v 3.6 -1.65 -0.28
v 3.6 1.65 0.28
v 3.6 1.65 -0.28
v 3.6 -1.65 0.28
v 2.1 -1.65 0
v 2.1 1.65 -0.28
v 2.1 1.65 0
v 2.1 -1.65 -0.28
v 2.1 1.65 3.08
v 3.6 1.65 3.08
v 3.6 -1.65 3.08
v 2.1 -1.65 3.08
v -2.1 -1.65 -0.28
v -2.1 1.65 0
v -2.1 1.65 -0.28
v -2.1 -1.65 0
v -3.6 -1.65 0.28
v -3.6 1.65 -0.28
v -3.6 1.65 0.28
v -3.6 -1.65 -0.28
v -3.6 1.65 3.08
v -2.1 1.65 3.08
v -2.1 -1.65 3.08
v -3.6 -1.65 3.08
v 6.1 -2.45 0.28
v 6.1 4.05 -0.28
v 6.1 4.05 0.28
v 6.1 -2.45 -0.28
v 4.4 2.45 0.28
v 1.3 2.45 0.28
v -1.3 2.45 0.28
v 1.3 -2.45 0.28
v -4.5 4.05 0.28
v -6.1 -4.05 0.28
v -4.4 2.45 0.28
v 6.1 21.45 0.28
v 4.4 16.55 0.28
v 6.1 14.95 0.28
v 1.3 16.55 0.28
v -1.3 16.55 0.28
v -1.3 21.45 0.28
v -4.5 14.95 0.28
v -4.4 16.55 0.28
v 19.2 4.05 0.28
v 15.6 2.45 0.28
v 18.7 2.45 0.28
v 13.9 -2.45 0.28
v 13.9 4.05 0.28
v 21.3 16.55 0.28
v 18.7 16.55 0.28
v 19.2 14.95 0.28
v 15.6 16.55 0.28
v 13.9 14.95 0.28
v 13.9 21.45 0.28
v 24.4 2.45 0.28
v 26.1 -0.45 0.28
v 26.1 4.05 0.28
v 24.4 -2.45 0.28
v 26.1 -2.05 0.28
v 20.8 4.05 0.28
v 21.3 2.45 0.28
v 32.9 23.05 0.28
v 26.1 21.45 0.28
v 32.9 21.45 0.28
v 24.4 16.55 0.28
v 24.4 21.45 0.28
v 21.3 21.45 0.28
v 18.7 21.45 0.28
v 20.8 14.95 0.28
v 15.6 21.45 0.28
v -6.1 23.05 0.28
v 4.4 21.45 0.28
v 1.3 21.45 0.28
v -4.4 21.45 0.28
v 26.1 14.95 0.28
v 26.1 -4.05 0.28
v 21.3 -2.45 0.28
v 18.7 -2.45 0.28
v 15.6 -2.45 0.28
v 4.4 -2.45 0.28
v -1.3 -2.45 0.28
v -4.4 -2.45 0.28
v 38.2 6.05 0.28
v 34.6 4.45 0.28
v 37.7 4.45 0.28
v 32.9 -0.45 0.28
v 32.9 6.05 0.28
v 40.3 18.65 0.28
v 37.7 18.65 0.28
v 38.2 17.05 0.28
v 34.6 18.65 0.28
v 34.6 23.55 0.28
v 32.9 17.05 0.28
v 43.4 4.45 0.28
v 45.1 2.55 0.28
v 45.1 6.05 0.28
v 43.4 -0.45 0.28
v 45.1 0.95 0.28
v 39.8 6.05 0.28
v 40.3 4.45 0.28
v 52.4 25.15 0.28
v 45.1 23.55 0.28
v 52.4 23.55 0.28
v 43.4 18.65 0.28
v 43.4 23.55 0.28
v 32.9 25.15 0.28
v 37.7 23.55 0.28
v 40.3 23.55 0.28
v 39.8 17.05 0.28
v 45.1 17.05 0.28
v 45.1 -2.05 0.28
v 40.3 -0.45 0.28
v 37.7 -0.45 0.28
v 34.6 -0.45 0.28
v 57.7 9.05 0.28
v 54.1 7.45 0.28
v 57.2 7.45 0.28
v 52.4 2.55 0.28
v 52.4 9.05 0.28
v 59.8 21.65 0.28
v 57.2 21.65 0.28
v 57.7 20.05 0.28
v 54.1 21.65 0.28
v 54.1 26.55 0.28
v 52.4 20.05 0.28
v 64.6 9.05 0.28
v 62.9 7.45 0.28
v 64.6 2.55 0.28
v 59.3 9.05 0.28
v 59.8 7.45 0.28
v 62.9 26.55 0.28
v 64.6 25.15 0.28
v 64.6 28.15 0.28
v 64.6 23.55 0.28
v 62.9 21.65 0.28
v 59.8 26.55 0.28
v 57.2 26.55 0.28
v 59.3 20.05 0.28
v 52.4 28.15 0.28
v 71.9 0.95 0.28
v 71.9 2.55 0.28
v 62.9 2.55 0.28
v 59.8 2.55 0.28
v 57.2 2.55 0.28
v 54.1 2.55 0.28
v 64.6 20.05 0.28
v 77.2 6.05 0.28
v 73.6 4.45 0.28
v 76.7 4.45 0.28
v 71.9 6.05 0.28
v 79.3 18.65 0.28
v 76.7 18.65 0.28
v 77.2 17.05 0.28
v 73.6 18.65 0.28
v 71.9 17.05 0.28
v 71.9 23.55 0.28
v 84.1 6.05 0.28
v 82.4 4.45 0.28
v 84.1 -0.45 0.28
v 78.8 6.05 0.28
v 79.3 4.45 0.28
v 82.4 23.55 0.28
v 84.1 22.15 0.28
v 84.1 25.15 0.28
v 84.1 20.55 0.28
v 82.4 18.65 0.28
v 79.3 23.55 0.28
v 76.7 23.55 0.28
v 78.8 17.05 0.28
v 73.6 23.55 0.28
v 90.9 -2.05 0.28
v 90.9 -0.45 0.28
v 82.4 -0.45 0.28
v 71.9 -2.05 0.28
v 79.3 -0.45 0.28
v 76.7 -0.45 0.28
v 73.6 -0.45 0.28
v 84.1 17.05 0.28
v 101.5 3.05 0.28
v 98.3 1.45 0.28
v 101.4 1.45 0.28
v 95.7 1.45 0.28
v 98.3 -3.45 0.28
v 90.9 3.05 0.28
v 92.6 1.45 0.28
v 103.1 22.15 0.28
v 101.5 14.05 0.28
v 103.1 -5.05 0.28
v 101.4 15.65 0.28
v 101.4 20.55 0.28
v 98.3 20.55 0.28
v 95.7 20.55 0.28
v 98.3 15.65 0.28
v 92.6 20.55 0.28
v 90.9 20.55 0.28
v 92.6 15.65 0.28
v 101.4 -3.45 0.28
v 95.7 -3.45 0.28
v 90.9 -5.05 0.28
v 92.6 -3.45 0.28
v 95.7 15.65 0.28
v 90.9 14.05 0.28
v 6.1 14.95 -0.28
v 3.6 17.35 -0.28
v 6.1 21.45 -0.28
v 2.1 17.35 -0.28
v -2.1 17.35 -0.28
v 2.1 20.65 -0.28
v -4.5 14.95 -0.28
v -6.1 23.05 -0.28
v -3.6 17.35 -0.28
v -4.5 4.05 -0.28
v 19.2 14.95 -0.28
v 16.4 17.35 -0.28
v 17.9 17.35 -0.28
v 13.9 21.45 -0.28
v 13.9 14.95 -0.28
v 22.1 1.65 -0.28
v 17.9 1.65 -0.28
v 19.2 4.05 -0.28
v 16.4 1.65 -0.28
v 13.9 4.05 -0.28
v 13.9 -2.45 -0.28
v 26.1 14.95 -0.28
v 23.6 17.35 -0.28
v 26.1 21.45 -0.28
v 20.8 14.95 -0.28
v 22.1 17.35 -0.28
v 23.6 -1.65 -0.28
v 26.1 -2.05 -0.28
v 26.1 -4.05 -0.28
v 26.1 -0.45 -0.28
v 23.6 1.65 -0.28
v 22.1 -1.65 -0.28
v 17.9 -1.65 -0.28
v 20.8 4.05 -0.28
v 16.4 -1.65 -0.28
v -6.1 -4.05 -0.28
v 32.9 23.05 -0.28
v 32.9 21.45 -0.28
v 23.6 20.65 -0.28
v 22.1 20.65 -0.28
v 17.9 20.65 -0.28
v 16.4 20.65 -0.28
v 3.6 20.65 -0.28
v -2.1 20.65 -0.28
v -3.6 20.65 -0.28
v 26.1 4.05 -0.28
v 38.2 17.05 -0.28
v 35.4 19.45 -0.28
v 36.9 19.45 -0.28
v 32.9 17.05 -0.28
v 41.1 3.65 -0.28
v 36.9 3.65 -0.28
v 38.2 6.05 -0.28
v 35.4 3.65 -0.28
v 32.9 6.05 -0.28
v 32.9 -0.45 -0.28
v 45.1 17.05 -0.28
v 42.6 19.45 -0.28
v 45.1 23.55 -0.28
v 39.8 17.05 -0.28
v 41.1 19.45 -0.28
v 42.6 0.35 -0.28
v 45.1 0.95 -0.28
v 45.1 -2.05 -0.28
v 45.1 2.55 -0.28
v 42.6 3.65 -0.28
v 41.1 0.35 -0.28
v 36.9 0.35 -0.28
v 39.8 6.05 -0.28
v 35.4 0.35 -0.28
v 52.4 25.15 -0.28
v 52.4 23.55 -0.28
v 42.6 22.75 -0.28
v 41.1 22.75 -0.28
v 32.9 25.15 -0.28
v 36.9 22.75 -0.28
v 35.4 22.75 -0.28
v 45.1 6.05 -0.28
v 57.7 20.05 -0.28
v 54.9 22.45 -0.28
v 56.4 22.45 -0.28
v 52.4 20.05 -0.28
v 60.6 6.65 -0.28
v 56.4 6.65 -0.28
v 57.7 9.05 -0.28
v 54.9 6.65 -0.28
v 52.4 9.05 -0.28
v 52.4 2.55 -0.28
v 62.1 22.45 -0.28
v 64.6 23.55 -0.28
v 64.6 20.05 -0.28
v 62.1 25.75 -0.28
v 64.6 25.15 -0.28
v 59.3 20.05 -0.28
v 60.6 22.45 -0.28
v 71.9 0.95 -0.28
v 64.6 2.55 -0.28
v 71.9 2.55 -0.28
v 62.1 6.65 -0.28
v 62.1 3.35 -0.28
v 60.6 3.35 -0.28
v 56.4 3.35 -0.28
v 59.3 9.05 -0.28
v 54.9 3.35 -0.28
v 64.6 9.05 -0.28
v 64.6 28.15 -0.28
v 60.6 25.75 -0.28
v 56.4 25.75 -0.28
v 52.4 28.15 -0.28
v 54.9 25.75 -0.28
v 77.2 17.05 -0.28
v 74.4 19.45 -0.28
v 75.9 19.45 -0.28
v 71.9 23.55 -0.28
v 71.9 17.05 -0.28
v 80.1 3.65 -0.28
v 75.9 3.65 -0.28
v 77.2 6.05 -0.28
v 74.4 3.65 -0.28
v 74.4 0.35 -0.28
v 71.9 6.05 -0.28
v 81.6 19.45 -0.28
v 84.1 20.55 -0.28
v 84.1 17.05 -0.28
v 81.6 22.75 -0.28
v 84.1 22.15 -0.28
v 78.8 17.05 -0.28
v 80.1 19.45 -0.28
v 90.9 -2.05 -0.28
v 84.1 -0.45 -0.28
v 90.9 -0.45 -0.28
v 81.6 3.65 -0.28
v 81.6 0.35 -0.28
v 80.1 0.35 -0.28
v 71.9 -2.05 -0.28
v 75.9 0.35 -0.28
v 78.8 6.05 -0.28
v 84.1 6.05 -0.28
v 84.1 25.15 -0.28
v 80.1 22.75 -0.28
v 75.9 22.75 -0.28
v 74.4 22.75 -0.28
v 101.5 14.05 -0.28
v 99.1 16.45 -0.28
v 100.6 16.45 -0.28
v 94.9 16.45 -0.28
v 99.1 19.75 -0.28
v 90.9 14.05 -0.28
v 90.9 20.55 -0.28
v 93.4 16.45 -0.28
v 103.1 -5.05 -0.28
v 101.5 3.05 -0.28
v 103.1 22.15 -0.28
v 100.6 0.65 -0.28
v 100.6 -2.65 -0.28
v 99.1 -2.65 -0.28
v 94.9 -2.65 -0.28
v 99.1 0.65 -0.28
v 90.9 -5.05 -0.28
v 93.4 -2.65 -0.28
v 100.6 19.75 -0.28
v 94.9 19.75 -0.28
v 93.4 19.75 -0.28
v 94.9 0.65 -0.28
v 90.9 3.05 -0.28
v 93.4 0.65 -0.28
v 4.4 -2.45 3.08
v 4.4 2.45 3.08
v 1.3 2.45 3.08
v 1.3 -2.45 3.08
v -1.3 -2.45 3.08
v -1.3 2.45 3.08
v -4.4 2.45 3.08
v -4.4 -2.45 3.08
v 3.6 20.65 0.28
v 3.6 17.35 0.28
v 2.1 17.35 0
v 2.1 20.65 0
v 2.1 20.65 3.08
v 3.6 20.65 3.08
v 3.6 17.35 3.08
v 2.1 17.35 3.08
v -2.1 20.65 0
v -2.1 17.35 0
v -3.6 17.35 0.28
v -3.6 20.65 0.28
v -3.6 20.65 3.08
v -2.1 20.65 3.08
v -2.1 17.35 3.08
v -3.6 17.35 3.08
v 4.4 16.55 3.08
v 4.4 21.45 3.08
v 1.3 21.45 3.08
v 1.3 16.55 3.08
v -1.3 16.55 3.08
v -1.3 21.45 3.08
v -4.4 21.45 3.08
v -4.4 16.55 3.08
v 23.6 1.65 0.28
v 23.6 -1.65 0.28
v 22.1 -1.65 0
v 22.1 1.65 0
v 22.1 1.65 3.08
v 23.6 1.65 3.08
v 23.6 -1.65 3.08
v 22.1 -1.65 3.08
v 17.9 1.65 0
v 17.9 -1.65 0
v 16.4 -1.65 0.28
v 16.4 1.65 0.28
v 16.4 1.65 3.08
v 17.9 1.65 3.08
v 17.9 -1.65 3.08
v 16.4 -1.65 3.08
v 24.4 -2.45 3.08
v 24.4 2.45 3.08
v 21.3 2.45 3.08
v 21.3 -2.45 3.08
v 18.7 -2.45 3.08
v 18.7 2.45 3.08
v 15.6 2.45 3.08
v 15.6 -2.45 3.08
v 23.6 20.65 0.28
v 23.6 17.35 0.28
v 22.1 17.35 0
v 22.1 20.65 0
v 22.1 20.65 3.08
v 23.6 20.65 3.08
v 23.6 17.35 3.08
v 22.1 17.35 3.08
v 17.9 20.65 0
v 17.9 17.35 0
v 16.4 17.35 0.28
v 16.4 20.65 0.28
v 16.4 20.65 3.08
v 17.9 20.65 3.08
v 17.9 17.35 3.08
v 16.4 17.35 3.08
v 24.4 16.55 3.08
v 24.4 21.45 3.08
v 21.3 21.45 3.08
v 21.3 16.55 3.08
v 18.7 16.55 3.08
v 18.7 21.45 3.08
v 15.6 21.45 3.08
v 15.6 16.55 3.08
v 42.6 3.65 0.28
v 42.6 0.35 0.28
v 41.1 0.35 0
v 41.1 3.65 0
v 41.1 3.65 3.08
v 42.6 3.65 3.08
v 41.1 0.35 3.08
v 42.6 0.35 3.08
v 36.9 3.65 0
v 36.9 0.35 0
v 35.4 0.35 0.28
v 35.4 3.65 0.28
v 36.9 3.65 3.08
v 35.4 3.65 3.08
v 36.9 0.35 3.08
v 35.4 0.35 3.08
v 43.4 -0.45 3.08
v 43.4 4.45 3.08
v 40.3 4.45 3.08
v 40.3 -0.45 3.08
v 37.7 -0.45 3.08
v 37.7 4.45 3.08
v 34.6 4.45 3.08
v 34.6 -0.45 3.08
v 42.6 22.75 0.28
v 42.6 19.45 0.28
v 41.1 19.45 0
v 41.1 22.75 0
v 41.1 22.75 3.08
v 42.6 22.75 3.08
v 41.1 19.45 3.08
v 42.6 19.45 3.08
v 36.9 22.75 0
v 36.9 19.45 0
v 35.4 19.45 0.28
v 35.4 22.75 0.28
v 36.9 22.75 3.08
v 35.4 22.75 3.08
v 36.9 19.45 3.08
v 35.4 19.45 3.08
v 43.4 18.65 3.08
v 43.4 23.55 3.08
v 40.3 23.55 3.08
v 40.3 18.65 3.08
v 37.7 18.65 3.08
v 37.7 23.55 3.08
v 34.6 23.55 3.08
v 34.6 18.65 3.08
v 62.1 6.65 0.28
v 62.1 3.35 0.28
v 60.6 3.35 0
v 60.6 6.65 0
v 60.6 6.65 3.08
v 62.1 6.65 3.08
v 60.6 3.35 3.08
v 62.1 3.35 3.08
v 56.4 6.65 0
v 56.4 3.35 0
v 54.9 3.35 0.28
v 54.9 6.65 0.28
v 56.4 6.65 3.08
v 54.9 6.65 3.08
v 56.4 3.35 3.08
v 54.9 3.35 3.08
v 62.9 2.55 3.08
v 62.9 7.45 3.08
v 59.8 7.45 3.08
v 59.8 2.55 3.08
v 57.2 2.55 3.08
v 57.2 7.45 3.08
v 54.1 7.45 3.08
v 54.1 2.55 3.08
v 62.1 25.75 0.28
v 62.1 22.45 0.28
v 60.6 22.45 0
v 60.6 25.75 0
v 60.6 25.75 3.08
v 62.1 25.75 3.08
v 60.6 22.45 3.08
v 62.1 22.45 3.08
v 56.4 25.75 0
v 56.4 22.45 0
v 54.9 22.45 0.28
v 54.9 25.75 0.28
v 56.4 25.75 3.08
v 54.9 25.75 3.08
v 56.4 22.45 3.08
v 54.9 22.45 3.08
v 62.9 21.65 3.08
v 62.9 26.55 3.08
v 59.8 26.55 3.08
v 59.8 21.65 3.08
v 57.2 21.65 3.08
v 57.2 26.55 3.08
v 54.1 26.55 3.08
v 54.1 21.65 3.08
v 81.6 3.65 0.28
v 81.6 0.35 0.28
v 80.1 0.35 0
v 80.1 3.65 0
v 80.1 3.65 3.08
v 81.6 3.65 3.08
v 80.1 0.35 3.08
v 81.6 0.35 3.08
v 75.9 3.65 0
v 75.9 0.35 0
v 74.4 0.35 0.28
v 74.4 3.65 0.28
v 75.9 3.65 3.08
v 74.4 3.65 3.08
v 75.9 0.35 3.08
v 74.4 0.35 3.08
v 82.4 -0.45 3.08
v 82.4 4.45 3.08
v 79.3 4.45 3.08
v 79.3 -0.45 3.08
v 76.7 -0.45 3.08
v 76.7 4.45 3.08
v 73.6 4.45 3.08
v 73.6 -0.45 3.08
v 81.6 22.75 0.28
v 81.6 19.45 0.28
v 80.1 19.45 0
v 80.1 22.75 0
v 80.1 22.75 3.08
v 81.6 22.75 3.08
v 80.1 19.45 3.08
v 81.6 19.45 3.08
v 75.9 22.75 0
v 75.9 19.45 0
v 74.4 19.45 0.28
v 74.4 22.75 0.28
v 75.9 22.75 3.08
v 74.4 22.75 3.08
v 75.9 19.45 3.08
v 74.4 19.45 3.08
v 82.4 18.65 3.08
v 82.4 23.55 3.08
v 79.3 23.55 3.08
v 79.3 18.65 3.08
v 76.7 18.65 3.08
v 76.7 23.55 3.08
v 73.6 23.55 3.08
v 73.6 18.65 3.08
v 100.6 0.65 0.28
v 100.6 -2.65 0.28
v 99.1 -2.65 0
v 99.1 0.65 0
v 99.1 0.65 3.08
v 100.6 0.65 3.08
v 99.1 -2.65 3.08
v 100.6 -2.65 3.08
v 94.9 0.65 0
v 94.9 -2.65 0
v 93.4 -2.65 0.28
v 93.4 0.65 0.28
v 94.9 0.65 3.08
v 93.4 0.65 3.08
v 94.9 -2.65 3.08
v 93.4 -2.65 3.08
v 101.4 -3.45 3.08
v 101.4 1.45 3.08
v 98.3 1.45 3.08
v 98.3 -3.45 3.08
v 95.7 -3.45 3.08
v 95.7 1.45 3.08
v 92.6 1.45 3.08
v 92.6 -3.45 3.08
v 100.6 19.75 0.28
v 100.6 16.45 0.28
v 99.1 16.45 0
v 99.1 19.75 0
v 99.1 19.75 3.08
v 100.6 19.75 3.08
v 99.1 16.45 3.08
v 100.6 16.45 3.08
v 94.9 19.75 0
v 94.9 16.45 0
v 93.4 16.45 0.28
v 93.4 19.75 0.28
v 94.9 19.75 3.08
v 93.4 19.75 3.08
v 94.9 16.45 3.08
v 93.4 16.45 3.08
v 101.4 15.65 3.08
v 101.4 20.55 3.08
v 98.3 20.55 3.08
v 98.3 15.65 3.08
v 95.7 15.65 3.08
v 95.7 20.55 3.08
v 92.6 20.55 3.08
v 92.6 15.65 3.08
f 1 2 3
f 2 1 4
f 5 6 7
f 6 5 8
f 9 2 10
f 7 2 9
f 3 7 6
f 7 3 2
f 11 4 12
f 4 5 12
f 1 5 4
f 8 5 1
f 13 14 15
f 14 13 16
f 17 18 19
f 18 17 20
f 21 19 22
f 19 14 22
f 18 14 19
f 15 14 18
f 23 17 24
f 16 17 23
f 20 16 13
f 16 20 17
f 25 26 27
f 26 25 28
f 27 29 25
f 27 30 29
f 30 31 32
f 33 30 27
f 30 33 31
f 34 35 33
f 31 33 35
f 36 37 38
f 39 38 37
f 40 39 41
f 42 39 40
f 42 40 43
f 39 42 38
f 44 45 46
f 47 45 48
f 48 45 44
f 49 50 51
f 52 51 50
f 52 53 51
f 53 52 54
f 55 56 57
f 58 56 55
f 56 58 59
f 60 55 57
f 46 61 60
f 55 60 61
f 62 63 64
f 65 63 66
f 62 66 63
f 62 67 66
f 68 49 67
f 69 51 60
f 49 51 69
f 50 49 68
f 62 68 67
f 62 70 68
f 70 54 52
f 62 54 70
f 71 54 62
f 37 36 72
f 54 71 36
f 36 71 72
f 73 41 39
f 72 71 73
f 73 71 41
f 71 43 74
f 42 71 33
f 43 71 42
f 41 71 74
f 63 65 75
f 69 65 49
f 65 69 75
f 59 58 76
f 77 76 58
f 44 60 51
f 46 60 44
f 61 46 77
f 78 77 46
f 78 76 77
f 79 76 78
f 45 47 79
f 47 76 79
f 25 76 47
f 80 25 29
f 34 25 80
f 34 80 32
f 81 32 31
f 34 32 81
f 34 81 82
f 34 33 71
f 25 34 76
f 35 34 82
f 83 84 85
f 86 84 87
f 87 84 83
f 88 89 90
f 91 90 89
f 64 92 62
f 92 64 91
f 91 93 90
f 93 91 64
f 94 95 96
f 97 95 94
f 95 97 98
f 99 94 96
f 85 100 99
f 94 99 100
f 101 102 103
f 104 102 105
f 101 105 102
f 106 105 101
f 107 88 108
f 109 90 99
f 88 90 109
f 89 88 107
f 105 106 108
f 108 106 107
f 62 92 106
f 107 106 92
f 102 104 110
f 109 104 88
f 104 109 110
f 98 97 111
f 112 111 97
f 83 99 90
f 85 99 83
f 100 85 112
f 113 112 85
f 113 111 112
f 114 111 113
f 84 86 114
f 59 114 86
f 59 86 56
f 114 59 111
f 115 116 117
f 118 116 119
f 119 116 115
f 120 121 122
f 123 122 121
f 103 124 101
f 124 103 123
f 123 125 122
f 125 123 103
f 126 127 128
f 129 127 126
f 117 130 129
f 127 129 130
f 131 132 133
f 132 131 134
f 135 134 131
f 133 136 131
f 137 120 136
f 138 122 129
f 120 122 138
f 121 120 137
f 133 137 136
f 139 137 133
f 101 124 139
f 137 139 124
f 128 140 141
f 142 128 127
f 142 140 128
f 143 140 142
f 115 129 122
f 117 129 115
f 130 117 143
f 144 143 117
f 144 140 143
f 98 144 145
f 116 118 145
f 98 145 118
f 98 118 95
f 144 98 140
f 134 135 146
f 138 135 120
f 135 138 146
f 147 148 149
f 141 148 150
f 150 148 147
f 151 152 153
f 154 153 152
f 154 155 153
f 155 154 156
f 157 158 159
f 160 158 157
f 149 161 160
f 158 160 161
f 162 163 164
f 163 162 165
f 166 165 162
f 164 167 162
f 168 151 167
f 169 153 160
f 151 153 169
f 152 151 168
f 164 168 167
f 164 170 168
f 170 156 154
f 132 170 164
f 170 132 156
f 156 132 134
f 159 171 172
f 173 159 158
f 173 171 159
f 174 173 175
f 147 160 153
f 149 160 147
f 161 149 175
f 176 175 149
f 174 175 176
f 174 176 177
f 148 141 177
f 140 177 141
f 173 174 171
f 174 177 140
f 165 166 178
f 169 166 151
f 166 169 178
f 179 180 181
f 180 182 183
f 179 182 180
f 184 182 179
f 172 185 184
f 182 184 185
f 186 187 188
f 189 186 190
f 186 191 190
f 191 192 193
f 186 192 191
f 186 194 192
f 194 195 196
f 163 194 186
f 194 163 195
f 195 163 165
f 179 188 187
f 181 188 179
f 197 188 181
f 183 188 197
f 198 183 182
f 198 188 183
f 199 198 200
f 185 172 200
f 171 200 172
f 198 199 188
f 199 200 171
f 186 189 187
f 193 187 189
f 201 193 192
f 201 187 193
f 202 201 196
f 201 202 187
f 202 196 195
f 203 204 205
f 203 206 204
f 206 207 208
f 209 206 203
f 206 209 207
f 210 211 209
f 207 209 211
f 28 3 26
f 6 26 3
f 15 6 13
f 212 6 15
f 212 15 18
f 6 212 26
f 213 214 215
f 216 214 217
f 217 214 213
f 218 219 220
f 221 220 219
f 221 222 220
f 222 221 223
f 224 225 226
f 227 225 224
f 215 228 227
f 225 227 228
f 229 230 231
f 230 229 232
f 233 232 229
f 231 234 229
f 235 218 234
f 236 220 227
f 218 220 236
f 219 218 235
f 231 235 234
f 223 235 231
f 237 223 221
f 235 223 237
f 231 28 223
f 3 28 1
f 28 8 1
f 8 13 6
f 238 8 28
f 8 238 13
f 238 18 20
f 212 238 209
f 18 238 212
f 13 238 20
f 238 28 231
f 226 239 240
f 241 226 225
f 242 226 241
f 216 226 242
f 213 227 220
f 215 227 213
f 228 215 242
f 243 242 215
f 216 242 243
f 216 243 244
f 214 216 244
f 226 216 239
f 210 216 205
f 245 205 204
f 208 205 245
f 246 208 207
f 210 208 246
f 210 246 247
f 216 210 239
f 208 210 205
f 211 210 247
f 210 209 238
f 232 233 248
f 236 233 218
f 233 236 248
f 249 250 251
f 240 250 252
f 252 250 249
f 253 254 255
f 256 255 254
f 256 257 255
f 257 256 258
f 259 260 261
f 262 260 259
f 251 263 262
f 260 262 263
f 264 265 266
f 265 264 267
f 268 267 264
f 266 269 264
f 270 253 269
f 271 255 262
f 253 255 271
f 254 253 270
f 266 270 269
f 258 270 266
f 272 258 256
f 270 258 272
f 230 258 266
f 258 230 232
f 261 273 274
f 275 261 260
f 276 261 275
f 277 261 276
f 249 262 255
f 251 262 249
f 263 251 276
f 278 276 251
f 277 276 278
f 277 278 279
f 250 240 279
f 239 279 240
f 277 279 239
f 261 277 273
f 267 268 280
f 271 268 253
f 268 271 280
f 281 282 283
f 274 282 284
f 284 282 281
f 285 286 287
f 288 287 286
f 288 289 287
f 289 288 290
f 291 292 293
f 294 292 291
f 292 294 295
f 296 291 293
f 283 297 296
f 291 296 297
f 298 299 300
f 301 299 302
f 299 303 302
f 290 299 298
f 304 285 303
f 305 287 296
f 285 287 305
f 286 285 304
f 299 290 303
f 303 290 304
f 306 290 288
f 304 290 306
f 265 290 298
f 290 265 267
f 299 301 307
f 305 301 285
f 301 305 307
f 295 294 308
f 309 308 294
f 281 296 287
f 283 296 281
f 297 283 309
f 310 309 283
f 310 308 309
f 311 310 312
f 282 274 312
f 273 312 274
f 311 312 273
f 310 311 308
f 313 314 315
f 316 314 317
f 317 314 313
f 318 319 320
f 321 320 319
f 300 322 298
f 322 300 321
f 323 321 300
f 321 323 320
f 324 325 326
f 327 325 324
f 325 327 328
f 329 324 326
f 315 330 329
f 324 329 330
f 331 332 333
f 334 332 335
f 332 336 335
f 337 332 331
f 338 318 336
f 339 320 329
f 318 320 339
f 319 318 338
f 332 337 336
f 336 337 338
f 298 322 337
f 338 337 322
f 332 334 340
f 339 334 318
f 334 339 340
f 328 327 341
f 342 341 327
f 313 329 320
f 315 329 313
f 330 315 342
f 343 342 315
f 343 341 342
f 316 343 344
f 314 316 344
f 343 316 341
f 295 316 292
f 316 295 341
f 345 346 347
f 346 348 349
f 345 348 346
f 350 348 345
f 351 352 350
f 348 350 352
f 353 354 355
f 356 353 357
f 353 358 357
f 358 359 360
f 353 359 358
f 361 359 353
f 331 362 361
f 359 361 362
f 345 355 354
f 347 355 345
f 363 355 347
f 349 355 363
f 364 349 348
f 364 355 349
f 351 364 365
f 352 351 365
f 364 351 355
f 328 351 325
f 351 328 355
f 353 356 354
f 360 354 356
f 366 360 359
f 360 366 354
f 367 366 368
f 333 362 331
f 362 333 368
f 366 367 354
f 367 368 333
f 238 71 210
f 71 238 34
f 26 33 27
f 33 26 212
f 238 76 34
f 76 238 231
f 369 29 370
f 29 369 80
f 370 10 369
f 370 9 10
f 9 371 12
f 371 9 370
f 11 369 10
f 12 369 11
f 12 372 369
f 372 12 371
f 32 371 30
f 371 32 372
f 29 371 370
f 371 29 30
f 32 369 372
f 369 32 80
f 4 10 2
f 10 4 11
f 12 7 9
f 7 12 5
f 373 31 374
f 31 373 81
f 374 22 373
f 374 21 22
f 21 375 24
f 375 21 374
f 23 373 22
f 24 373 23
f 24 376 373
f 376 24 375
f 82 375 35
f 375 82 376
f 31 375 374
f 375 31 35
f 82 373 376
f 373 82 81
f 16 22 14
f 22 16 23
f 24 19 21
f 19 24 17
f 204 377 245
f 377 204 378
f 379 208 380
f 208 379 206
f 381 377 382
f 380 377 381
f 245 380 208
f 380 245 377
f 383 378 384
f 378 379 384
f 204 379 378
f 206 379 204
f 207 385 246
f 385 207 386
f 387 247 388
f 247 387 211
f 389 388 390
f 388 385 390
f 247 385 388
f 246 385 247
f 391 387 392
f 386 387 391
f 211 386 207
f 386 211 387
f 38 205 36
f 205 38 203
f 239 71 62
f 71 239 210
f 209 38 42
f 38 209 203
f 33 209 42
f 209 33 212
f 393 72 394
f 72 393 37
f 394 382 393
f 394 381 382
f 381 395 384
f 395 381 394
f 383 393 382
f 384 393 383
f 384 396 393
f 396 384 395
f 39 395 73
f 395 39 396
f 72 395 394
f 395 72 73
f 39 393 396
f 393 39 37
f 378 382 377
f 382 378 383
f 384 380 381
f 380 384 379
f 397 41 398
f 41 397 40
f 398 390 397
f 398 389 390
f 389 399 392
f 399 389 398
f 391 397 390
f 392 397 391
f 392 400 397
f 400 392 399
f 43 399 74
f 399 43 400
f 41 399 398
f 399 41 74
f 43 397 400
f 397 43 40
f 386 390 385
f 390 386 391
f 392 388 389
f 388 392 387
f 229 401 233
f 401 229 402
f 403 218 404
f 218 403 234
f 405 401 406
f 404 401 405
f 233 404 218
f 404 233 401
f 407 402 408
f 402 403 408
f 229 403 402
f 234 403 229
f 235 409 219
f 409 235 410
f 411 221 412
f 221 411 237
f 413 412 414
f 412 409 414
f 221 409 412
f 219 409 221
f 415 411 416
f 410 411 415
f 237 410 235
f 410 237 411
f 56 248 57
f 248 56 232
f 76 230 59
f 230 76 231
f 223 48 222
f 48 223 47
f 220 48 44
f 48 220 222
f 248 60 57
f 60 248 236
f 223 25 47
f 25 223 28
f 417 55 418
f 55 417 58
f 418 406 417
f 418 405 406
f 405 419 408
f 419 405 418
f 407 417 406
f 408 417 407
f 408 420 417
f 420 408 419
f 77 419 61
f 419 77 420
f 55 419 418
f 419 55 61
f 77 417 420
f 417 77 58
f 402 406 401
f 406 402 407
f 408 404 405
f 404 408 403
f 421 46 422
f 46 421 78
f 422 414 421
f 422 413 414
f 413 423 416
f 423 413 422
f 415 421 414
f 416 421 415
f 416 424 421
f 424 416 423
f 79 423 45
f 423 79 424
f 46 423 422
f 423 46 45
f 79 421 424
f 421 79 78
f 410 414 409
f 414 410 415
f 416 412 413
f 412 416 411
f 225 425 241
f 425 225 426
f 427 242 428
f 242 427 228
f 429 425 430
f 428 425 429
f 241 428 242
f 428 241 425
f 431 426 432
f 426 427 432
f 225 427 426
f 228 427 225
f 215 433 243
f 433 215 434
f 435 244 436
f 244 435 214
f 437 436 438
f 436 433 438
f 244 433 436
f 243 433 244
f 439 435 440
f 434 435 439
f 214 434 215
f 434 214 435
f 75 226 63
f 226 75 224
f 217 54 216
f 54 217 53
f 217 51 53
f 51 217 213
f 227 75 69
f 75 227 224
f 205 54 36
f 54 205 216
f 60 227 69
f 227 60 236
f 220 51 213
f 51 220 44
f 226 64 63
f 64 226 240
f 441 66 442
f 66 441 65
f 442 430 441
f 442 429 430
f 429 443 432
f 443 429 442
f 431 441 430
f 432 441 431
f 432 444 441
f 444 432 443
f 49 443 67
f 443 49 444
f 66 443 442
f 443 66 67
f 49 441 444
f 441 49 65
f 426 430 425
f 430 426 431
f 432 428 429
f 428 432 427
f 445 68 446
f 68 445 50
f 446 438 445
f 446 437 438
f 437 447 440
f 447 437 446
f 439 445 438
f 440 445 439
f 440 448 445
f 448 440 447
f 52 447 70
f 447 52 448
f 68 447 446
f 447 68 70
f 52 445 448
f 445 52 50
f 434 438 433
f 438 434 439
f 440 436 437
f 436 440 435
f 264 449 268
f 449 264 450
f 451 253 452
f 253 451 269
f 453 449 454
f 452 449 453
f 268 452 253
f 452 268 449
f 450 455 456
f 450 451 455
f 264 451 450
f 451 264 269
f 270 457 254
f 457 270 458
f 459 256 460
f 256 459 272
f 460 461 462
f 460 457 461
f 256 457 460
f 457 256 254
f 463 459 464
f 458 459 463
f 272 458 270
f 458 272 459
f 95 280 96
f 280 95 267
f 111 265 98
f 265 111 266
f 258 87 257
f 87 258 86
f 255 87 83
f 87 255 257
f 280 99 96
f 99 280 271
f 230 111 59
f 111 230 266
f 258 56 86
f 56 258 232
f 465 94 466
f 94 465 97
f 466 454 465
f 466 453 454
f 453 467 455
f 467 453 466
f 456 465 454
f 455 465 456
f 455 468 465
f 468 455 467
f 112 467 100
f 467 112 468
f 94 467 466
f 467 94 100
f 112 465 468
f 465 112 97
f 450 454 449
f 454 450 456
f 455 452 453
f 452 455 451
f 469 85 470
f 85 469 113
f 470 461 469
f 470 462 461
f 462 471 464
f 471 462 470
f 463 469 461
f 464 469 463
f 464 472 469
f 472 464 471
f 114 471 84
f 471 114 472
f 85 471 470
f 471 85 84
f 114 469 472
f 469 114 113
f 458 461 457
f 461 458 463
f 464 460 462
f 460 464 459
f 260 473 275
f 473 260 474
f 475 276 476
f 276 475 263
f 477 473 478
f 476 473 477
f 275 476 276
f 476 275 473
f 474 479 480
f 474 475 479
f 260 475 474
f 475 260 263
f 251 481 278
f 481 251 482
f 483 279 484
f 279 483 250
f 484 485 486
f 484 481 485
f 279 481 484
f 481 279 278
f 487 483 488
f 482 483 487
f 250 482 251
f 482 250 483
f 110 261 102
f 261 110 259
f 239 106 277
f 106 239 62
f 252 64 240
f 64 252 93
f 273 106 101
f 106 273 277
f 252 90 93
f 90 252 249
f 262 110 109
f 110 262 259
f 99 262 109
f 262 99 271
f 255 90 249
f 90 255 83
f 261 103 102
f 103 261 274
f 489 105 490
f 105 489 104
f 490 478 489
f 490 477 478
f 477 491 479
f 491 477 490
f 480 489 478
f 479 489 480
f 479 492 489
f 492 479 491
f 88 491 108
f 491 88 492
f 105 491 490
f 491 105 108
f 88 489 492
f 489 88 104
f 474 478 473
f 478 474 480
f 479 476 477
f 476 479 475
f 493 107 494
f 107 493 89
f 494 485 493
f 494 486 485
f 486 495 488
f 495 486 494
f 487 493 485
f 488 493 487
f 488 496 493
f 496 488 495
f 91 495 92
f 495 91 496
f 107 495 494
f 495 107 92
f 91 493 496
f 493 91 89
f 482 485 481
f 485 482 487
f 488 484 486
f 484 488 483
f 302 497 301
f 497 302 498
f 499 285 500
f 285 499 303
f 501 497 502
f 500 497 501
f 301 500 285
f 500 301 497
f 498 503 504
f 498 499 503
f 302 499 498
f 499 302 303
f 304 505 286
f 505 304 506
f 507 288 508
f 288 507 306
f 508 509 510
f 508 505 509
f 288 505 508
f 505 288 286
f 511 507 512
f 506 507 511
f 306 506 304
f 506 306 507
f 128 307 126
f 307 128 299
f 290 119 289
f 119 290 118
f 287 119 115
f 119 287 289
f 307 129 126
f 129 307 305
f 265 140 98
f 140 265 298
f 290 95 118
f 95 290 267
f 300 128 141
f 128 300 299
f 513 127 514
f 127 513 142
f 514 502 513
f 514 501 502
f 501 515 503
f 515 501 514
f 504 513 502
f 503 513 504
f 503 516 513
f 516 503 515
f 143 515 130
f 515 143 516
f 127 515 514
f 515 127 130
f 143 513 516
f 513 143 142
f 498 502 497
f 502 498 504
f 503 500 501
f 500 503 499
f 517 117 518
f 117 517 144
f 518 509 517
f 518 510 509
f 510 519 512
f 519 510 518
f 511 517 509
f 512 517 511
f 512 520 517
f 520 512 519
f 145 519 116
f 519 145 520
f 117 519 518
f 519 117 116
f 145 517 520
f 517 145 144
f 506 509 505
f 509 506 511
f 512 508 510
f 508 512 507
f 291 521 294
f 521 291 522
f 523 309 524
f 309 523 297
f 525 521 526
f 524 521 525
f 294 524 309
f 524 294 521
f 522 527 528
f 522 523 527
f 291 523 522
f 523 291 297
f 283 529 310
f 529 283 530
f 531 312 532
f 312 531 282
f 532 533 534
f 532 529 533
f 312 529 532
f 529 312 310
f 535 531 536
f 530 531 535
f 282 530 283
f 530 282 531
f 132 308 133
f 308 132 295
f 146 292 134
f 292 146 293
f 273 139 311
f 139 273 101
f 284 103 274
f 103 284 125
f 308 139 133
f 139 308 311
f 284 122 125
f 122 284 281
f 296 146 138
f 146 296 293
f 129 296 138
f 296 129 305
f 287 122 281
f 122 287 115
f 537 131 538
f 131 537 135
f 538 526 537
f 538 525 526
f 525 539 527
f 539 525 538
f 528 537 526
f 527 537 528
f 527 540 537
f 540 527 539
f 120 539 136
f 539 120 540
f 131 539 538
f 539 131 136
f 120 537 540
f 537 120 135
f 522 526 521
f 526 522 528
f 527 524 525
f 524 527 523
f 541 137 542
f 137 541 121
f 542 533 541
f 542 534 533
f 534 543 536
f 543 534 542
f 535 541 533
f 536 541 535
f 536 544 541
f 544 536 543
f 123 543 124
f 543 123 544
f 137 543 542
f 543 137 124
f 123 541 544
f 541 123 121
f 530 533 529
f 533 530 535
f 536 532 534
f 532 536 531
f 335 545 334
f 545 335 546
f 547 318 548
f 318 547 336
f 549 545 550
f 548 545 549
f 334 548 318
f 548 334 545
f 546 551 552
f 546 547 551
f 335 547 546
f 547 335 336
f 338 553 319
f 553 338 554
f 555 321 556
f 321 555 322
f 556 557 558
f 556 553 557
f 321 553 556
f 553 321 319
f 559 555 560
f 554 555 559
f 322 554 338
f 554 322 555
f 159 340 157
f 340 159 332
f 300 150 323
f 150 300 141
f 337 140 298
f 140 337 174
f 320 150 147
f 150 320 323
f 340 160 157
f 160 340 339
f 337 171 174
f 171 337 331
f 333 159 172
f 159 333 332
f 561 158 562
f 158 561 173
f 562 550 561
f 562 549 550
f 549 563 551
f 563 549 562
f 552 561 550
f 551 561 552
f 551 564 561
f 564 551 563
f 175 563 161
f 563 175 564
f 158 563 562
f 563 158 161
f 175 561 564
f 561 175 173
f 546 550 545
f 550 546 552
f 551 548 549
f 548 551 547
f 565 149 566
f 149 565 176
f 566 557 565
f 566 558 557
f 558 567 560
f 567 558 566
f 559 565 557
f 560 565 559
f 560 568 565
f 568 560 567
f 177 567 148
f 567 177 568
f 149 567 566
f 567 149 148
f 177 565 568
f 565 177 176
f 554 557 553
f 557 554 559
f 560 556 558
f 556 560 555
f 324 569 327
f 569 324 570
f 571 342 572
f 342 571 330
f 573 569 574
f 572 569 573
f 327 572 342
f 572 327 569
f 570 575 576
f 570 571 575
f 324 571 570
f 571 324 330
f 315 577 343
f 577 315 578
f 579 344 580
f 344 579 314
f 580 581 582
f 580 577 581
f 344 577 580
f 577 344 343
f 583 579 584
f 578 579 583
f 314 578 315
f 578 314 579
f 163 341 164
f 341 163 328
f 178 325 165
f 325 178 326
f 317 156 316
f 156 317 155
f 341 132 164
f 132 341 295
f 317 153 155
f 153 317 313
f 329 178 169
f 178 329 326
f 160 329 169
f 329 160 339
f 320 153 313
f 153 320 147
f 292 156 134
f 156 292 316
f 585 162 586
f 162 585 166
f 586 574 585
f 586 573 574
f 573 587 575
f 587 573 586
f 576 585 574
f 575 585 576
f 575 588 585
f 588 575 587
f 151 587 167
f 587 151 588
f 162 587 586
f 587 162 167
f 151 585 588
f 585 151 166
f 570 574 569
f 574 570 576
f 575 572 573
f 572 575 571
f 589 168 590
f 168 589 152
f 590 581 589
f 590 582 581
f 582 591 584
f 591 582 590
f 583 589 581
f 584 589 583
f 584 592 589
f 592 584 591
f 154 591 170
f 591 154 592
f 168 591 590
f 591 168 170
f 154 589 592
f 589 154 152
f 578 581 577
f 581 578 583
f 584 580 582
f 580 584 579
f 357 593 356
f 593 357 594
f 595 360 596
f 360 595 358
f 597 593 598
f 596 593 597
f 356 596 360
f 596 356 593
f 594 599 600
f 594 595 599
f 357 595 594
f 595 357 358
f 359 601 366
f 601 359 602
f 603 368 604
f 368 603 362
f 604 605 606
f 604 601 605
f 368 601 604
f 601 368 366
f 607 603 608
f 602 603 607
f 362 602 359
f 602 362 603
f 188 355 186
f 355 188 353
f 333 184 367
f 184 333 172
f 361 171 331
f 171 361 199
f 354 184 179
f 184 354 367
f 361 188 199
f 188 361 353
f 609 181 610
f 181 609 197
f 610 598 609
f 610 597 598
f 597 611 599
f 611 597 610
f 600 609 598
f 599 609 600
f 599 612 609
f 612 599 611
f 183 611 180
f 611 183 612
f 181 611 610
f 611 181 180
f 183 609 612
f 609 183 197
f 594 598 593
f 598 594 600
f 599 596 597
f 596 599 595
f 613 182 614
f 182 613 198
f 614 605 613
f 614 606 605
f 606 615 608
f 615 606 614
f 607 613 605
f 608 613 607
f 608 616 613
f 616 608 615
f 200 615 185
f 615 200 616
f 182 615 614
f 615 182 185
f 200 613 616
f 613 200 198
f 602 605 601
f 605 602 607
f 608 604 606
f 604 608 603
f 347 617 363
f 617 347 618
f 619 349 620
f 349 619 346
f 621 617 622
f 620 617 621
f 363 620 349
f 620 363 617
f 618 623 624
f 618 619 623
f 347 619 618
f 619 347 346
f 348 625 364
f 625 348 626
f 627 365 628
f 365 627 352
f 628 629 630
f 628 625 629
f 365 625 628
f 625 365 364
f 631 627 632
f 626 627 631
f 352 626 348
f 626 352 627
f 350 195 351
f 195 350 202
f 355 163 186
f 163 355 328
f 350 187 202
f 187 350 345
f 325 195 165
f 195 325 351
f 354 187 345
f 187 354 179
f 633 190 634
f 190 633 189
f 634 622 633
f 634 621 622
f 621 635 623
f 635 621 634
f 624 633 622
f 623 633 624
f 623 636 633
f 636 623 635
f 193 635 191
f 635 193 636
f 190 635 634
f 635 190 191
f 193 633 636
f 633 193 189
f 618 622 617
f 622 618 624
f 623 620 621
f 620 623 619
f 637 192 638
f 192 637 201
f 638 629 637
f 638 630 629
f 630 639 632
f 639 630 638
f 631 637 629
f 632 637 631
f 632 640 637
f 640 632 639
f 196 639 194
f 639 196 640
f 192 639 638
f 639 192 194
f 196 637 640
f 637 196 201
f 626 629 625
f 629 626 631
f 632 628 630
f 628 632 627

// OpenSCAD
union () {
  union () {
    translate ([0, 0, 0]) {
      difference () {
        union () {
          difference () {
            cube ([12.2, 8.100000000000001, 0.56], center=true);
            union () {
              translate ([2.85, 0, 0]) {
                cube ([1.5, 3.3, 6], center=true);
              }
              translate ([-2.85, 0, 0]) {
                cube ([1.5, 3.3, 6], center=true);
              }
            }
          }
          translate ([2.85, 0, 0]) {
            translate ([0, 0, 1.54]) {
              difference () {
                cube ([3.1, 4.9, 3.08], center=true);
                cube ([1.5, 3.3, 6], center=true);
              }
            }
          }
          translate ([-2.85, 0, 0]) {
            translate ([0, 0, 1.54]) {
              difference () {
                cube ([3.1, 4.9, 3.08], center=true);
                cube ([1.5, 3.3, 6], center=true);
              }
            }
          }
        }
      }
    }
    translate ([0, 19, 0]) {
      difference () {
        union () {
          difference () {
            union () {
              cube ([12.2, 8.100000000000001, 0.56], center=true);
              translate ([-5.3, -8.100000000000001, 0]) {
                cube ([1.6, 20, 0.56], center=true);
              }
            }
            union () {
              translate ([2.85, 0, 0]) {
                cube ([1.5, 3.3, 6], center=true);
              }
              translate ([-2.85, 0, 0]) {
                cube ([1.5, 3.3, 6], center=true);
              }
            }
          }
          translate ([2.85, 0, 0]) {
            translate ([0, 0, 1.54]) {
              difference () {
                cube ([3.1, 4.9, 3.08], center=true);
                cube ([1.5, 3.3, 6], center=true);
              }
            }
          }
          translate ([-2.85, 0, 0]) {
            translate ([0, 0, 1.54]) {
              difference () {
                cube ([3.1, 4.9, 3.08], center=true);
                cube ([1.5, 3.3, 6], center=true);
              }
            }
          }
        }
      }
    }
    translate ([20, 0, 0]) {
      difference () {
        union () {
          difference () {
            union () {
              cube ([12.2, 8.100000000000001, 0.56], center=true);
              translate ([-8, -3.250000000000001, 0]) {
                cube ([12.2, 1.6, 0.56], center=true);
              }
            }
            union () {
              translate ([2.85, 0, 0]) {
                cube ([1.5, 3.3, 6], center=true);
              }
              translate ([-2.85, 0, 0]) {
                cube ([1.5, 3.3, 6], center=true);
              }
            }
          }
          translate ([2.85, 0, 0]) {
            translate ([0, 0, 1.54]) {
              difference () {
                cube ([3.1, 4.9, 3.08], center=true);
                cube ([1.5, 3.3, 6], center=true);
              }
            }
          }
          translate ([-2.85, 0, 0]) {
            translate ([0, 0, 1.54]) {
              difference () {
                cube ([3.1, 4.9, 3.08], center=true);
                cube ([1.5, 3.3, 6], center=true);
              }
            }
          }
        }
      }
    }
    translate ([20, 19, 0]) {
      difference () {
        union () {
          difference () {
            union () {
              cube ([12.2, 8.100000000000001, 0.56], center=true);
              translate ([-8, 3.250000000000001, 0]) {
                cube ([12.2, 1.6, 0.56], center=true);
              }
              translate ([0, -8.100000000000001, 0]) {
                cube ([1.6, 20, 0.56], center=true);
              }
              mirror ([1, 0, 0]) {
                translate ([-8, 3.250000000000001, 0]) {
                  cube ([12.2, 1.6, 0.56], center=true);
                }
              }
            }
            union () {
              translate ([2.85, 0, 0]) {
                cube ([1.5, 3.3, 6], center=true);
              }
              translate ([-2.85, 0, 0]) {
                cube ([1.5, 3.3, 6], center=true);
              }
            }
          }
          translate ([2.85, 0, 0]) {
            translate ([0, 0, 1.54]) {
              difference () {
                cube ([3.1, 4.9, 3.08], center=true);
                cube ([1.5, 3.3, 6], center=true);
              }
            }
          }
          translate ([-2.85, 0, 0]) {
            translate ([0, 0, 1.54]) {
              difference () {
                cube ([3.1, 4.9, 3.08], center=true);
                cube ([1.5, 3.3, 6], center=true);
              }
            }
          }
        }
      }
    }
    translate ([39, 2, 0]) {
      difference () {
        union () {
          difference () {
            union () {
              cube ([12.2, 8.100000000000001, 0.56], center=true);
              translate ([-8, -3.250000000000001, 0]) {
                cube ([12.2, 1.6, 0.56], center=true);
              }
            }
            union () {
              translate ([2.85, 0, 0]) {
                cube ([1.5, 3.3, 6], center=true);
              }
              translate ([-2.85, 0, 0]) {
                cube ([1.5, 3.3, 6], center=true);
              }
            }
          }
          translate ([2.85, 0, 0]) {
            translate ([0, 0, 1.54]) {
              difference () {
                cube ([3.1, 4.9, 3.08], center=true);
                cube ([1.5, 3.3, 6], center=true);
              }
            }
          }
          translate ([-2.85, 0, 0]) {
            translate ([0, 0, 1.54]) {
              difference () {
                cube ([3.1, 4.9, 3.08], center=true);
                cube ([1.5, 3.3, 6], center=true);
              }
            }
          }
        }
      }
    }
    translate ([39, 21.1, 0]) {
      difference () {
        union () {
          difference () {
            union () {
              cube ([12.2, 8.100000000000001, 0.56], center=true);
              translate ([0, -8.100000000000001, 0]) {
                cube ([1.6, 20, 0.56], center=true);
              }
              mirror ([1, 0, 0]) {
                translate ([-8, 3.250000000000001, 0]) {
                  cube ([12.2, 1.6, 0.56], center=true);
                }
              }
            }
            union () {
              translate ([2.85, 0, 0]) {
                cube ([1.5, 3.3, 6], center=true);
              }
              translate ([-2.85, 0, 0]) {
                cube ([1.5, 3.3, 6], center=true);
              }
            }
          }
          translate ([2.85, 0, 0]) {
            translate ([0, 0, 1.54]) {
              difference () {
                cube ([3.1, 4.9, 3.08], center=true);
                cube ([1.5, 3.3, 6], center=true);
              }
            }
          }
          translate ([-2.85, 0, 0]) {
            translate ([0, 0, 1.54]) {
              difference () {
                cube ([3.1, 4.9, 3.08], center=true);
                cube ([1.5, 3.3, 6], center=true);
              }
            }
          }
        }
      }
    }
    translate ([58.5, 5, 0]) {
      difference () {
        union () {
          difference () {
            union () {
              cube ([12.2, 8.100000000000001, 0.56], center=true);
              translate ([-8, -3.250000000000001, 0]) {
                cube ([12.2, 1.6, 0.56], center=true);
              }
              mirror ([1, 0, 0]) {
                translate ([-8, -3.250000000000001, 0]) {
                  cube ([12.2, 1.6, 0.56], center=true);
                }
              }
            }
            union () {
              translate ([2.85, 0, 0]) {
                cube ([1.5, 3.3, 6], center=true);
              }
              translate ([-2.85, 0, 0]) {
                cube ([1.5, 3.3, 6], center=true);
              }
            }
          }
          translate ([2.85, 0, 0]) {
            translate ([0, 0, 1.54]) {
              difference () {
                cube ([3.1, 4.9, 3.08], center=true);
                cube ([1.5, 3.3, 6], center=true);
              }
            }
          }
          translate ([-2.85, 0, 0]) {
            translate ([0, 0, 1.54]) {
              difference () {
                cube ([3.1, 4.9, 3.08], center=true);
                cube ([1.5, 3.3, 6], center=true);
              }
            }
          }
        }
      }
    }
    translate ([58.5, 24.1, 0]) {
      difference () {
        union () {
          difference () {
            union () {
              cube ([12.2, 8.100000000000001, 0.56], center=true);
              translate ([0, -8.100000000000001, 0]) {
                cube ([1.6, 20, 0.56], center=true);
              }
            }
            union () {
              translate ([2.85, 0, 0]) {
                cube ([1.5, 3.3, 6], center=true);
              }
              translate ([-2.85, 0, 0]) {
                cube ([1.5, 3.3, 6], center=true);
              }
            }
          }
          translate ([2.85, 0, 0]) {
            translate ([0, 0, 1.54]) {
              difference () {
                cube ([3.1, 4.9, 3.08], center=true);
                cube ([1.5, 3.3, 6], center=true);
              }
            }
          }
          translate ([-2.85, 0, 0]) {
            translate ([0, 0, 1.54]) {
              difference () {
                cube ([3.1, 4.9, 3.08], center=true);
                cube ([1.5, 3.3, 6], center=true);
              }
            }
          }
        }
      }
    }
    translate ([78, 2, 0]) {
      difference () {
        union () {
          difference () {
            union () {
              cube ([12.2, 8.100000000000001, 0.56], center=true);
              mirror ([1, 0, 0]) {
                translate ([-8, -3.250000000000001, 0]) {
                  cube ([12.2, 1.6, 0.56], center=true);
                }
              }
            }
            union () {
              translate ([2.85, 0, 0]) {
                cube ([1.5, 3.3, 6], center=true);
              }
              translate ([-2.85, 0, 0]) {
                cube ([1.5, 3.3, 6], center=true);
              }
            }
          }
          translate ([2.85, 0, 0]) {
            translate ([0, 0, 1.54]) {
              difference () {
                cube ([3.1, 4.9, 3.08], center=true);
                cube ([1.5, 3.3, 6], center=true);
              }
            }
          }
          translate ([-2.85, 0, 0]) {
            translate ([0, 0, 1.54]) {
              difference () {
                cube ([3.1, 4.9, 3.08], center=true);
                cube ([1.5, 3.3, 6], center=true);
              }
            }
          }
        }
      }
    }
    translate ([78, 21.1, 0]) {
      difference () {
        union () {
          difference () {
            union () {
              cube ([12.2, 8.100000000000001, 0.56], center=true);
              translate ([0, -8.100000000000001, 0]) {
                cube ([1.6, 20, 0.56], center=true);
              }
              translate ([-8, 3.250000000000001, 0]) {
                cube ([12.2, 1.6, 0.56], center=true);
              }
            }
            union () {
              translate ([2.85, 0, 0]) {
                cube ([1.5, 3.3, 6], center=true);
              }
              translate ([-2.85, 0, 0]) {
                cube ([1.5, 3.3, 6], center=true);
              }
            }
          }
          translate ([2.85, 0, 0]) {
            translate ([0, 0, 1.54]) {
              difference () {
                cube ([3.1, 4.9, 3.08], center=true);
                cube ([1.5, 3.3, 6], center=true);
              }
            }
          }
          translate ([-2.85, 0, 0]) {
            translate ([0, 0, 1.54]) {
              difference () {
                cube ([3.1, 4.9, 3.08], center=true);
                cube ([1.5, 3.3, 6], center=true);
              }
            }
          }
        }
      }
    }
    translate ([97, -1, 0]) {
      difference () {
        union () {
          difference () {
            union () {
              cube ([12.2, 8.100000000000001, 0.56], center=true);
            }
            union () {
              translate ([2.85, 0, 0]) {
                cube ([1.5, 3.3, 6], center=true);
              }
              translate ([-2.85, 0, 0]) {
                cube ([1.5, 3.3, 6], center=true);
              }
            }
          }
          translate ([2.85, 0, 0]) {
            translate ([0, 0, 1.54]) {
              difference () {
                cube ([3.1, 4.9, 3.08], center=true);
                cube ([1.5, 3.3, 6], center=true);
              }
            }
          }
          translate ([-2.85, 0, 0]) {
            translate ([0, 0, 1.54]) {
              difference () {
                cube ([3.1, 4.9, 3.08], center=true);
                cube ([1.5, 3.3, 6], center=true);
              }
            }
          }
        }
      }
    }
    translate ([97, 18.1, 0]) {
      difference () {
        union () {
          difference () {
            union () {
              cube ([12.2, 8.100000000000001, 0.56], center=true);
              translate ([-8, 3.250000000000001, 0]) {
                cube ([12.2, 1.6, 0.56], center=true);
              }
              translate ([5.3, -8.100000000000001, 0]) {
                cube ([1.6, 20, 0.56], center=true);
              }
            }
            union () {
              translate ([2.85, 0, 0]) {
                cube ([1.5, 3.3, 6], center=true);
              }
              translate ([-2.85, 0, 0]) {
                cube ([1.5, 3.3, 6], center=true);
              }
            }
          }
          translate ([2.85, 0, 0]) {
            translate ([0, 0, 1.54]) {
              difference () {
                cube ([3.1, 4.9, 3.08], center=true);
                cube ([1.5, 3.3, 6], center=true);
              }
            }
          }
          translate ([-2.85, 0, 0]) {
            translate ([0, 0, 1.54]) {
              difference () {
                cube ([3.1, 4.9, 3.08], center=true);
                cube ([1.5, 3.3, 6], center=true);
              }
            }
          }
        }
      }
    }
  }
}
